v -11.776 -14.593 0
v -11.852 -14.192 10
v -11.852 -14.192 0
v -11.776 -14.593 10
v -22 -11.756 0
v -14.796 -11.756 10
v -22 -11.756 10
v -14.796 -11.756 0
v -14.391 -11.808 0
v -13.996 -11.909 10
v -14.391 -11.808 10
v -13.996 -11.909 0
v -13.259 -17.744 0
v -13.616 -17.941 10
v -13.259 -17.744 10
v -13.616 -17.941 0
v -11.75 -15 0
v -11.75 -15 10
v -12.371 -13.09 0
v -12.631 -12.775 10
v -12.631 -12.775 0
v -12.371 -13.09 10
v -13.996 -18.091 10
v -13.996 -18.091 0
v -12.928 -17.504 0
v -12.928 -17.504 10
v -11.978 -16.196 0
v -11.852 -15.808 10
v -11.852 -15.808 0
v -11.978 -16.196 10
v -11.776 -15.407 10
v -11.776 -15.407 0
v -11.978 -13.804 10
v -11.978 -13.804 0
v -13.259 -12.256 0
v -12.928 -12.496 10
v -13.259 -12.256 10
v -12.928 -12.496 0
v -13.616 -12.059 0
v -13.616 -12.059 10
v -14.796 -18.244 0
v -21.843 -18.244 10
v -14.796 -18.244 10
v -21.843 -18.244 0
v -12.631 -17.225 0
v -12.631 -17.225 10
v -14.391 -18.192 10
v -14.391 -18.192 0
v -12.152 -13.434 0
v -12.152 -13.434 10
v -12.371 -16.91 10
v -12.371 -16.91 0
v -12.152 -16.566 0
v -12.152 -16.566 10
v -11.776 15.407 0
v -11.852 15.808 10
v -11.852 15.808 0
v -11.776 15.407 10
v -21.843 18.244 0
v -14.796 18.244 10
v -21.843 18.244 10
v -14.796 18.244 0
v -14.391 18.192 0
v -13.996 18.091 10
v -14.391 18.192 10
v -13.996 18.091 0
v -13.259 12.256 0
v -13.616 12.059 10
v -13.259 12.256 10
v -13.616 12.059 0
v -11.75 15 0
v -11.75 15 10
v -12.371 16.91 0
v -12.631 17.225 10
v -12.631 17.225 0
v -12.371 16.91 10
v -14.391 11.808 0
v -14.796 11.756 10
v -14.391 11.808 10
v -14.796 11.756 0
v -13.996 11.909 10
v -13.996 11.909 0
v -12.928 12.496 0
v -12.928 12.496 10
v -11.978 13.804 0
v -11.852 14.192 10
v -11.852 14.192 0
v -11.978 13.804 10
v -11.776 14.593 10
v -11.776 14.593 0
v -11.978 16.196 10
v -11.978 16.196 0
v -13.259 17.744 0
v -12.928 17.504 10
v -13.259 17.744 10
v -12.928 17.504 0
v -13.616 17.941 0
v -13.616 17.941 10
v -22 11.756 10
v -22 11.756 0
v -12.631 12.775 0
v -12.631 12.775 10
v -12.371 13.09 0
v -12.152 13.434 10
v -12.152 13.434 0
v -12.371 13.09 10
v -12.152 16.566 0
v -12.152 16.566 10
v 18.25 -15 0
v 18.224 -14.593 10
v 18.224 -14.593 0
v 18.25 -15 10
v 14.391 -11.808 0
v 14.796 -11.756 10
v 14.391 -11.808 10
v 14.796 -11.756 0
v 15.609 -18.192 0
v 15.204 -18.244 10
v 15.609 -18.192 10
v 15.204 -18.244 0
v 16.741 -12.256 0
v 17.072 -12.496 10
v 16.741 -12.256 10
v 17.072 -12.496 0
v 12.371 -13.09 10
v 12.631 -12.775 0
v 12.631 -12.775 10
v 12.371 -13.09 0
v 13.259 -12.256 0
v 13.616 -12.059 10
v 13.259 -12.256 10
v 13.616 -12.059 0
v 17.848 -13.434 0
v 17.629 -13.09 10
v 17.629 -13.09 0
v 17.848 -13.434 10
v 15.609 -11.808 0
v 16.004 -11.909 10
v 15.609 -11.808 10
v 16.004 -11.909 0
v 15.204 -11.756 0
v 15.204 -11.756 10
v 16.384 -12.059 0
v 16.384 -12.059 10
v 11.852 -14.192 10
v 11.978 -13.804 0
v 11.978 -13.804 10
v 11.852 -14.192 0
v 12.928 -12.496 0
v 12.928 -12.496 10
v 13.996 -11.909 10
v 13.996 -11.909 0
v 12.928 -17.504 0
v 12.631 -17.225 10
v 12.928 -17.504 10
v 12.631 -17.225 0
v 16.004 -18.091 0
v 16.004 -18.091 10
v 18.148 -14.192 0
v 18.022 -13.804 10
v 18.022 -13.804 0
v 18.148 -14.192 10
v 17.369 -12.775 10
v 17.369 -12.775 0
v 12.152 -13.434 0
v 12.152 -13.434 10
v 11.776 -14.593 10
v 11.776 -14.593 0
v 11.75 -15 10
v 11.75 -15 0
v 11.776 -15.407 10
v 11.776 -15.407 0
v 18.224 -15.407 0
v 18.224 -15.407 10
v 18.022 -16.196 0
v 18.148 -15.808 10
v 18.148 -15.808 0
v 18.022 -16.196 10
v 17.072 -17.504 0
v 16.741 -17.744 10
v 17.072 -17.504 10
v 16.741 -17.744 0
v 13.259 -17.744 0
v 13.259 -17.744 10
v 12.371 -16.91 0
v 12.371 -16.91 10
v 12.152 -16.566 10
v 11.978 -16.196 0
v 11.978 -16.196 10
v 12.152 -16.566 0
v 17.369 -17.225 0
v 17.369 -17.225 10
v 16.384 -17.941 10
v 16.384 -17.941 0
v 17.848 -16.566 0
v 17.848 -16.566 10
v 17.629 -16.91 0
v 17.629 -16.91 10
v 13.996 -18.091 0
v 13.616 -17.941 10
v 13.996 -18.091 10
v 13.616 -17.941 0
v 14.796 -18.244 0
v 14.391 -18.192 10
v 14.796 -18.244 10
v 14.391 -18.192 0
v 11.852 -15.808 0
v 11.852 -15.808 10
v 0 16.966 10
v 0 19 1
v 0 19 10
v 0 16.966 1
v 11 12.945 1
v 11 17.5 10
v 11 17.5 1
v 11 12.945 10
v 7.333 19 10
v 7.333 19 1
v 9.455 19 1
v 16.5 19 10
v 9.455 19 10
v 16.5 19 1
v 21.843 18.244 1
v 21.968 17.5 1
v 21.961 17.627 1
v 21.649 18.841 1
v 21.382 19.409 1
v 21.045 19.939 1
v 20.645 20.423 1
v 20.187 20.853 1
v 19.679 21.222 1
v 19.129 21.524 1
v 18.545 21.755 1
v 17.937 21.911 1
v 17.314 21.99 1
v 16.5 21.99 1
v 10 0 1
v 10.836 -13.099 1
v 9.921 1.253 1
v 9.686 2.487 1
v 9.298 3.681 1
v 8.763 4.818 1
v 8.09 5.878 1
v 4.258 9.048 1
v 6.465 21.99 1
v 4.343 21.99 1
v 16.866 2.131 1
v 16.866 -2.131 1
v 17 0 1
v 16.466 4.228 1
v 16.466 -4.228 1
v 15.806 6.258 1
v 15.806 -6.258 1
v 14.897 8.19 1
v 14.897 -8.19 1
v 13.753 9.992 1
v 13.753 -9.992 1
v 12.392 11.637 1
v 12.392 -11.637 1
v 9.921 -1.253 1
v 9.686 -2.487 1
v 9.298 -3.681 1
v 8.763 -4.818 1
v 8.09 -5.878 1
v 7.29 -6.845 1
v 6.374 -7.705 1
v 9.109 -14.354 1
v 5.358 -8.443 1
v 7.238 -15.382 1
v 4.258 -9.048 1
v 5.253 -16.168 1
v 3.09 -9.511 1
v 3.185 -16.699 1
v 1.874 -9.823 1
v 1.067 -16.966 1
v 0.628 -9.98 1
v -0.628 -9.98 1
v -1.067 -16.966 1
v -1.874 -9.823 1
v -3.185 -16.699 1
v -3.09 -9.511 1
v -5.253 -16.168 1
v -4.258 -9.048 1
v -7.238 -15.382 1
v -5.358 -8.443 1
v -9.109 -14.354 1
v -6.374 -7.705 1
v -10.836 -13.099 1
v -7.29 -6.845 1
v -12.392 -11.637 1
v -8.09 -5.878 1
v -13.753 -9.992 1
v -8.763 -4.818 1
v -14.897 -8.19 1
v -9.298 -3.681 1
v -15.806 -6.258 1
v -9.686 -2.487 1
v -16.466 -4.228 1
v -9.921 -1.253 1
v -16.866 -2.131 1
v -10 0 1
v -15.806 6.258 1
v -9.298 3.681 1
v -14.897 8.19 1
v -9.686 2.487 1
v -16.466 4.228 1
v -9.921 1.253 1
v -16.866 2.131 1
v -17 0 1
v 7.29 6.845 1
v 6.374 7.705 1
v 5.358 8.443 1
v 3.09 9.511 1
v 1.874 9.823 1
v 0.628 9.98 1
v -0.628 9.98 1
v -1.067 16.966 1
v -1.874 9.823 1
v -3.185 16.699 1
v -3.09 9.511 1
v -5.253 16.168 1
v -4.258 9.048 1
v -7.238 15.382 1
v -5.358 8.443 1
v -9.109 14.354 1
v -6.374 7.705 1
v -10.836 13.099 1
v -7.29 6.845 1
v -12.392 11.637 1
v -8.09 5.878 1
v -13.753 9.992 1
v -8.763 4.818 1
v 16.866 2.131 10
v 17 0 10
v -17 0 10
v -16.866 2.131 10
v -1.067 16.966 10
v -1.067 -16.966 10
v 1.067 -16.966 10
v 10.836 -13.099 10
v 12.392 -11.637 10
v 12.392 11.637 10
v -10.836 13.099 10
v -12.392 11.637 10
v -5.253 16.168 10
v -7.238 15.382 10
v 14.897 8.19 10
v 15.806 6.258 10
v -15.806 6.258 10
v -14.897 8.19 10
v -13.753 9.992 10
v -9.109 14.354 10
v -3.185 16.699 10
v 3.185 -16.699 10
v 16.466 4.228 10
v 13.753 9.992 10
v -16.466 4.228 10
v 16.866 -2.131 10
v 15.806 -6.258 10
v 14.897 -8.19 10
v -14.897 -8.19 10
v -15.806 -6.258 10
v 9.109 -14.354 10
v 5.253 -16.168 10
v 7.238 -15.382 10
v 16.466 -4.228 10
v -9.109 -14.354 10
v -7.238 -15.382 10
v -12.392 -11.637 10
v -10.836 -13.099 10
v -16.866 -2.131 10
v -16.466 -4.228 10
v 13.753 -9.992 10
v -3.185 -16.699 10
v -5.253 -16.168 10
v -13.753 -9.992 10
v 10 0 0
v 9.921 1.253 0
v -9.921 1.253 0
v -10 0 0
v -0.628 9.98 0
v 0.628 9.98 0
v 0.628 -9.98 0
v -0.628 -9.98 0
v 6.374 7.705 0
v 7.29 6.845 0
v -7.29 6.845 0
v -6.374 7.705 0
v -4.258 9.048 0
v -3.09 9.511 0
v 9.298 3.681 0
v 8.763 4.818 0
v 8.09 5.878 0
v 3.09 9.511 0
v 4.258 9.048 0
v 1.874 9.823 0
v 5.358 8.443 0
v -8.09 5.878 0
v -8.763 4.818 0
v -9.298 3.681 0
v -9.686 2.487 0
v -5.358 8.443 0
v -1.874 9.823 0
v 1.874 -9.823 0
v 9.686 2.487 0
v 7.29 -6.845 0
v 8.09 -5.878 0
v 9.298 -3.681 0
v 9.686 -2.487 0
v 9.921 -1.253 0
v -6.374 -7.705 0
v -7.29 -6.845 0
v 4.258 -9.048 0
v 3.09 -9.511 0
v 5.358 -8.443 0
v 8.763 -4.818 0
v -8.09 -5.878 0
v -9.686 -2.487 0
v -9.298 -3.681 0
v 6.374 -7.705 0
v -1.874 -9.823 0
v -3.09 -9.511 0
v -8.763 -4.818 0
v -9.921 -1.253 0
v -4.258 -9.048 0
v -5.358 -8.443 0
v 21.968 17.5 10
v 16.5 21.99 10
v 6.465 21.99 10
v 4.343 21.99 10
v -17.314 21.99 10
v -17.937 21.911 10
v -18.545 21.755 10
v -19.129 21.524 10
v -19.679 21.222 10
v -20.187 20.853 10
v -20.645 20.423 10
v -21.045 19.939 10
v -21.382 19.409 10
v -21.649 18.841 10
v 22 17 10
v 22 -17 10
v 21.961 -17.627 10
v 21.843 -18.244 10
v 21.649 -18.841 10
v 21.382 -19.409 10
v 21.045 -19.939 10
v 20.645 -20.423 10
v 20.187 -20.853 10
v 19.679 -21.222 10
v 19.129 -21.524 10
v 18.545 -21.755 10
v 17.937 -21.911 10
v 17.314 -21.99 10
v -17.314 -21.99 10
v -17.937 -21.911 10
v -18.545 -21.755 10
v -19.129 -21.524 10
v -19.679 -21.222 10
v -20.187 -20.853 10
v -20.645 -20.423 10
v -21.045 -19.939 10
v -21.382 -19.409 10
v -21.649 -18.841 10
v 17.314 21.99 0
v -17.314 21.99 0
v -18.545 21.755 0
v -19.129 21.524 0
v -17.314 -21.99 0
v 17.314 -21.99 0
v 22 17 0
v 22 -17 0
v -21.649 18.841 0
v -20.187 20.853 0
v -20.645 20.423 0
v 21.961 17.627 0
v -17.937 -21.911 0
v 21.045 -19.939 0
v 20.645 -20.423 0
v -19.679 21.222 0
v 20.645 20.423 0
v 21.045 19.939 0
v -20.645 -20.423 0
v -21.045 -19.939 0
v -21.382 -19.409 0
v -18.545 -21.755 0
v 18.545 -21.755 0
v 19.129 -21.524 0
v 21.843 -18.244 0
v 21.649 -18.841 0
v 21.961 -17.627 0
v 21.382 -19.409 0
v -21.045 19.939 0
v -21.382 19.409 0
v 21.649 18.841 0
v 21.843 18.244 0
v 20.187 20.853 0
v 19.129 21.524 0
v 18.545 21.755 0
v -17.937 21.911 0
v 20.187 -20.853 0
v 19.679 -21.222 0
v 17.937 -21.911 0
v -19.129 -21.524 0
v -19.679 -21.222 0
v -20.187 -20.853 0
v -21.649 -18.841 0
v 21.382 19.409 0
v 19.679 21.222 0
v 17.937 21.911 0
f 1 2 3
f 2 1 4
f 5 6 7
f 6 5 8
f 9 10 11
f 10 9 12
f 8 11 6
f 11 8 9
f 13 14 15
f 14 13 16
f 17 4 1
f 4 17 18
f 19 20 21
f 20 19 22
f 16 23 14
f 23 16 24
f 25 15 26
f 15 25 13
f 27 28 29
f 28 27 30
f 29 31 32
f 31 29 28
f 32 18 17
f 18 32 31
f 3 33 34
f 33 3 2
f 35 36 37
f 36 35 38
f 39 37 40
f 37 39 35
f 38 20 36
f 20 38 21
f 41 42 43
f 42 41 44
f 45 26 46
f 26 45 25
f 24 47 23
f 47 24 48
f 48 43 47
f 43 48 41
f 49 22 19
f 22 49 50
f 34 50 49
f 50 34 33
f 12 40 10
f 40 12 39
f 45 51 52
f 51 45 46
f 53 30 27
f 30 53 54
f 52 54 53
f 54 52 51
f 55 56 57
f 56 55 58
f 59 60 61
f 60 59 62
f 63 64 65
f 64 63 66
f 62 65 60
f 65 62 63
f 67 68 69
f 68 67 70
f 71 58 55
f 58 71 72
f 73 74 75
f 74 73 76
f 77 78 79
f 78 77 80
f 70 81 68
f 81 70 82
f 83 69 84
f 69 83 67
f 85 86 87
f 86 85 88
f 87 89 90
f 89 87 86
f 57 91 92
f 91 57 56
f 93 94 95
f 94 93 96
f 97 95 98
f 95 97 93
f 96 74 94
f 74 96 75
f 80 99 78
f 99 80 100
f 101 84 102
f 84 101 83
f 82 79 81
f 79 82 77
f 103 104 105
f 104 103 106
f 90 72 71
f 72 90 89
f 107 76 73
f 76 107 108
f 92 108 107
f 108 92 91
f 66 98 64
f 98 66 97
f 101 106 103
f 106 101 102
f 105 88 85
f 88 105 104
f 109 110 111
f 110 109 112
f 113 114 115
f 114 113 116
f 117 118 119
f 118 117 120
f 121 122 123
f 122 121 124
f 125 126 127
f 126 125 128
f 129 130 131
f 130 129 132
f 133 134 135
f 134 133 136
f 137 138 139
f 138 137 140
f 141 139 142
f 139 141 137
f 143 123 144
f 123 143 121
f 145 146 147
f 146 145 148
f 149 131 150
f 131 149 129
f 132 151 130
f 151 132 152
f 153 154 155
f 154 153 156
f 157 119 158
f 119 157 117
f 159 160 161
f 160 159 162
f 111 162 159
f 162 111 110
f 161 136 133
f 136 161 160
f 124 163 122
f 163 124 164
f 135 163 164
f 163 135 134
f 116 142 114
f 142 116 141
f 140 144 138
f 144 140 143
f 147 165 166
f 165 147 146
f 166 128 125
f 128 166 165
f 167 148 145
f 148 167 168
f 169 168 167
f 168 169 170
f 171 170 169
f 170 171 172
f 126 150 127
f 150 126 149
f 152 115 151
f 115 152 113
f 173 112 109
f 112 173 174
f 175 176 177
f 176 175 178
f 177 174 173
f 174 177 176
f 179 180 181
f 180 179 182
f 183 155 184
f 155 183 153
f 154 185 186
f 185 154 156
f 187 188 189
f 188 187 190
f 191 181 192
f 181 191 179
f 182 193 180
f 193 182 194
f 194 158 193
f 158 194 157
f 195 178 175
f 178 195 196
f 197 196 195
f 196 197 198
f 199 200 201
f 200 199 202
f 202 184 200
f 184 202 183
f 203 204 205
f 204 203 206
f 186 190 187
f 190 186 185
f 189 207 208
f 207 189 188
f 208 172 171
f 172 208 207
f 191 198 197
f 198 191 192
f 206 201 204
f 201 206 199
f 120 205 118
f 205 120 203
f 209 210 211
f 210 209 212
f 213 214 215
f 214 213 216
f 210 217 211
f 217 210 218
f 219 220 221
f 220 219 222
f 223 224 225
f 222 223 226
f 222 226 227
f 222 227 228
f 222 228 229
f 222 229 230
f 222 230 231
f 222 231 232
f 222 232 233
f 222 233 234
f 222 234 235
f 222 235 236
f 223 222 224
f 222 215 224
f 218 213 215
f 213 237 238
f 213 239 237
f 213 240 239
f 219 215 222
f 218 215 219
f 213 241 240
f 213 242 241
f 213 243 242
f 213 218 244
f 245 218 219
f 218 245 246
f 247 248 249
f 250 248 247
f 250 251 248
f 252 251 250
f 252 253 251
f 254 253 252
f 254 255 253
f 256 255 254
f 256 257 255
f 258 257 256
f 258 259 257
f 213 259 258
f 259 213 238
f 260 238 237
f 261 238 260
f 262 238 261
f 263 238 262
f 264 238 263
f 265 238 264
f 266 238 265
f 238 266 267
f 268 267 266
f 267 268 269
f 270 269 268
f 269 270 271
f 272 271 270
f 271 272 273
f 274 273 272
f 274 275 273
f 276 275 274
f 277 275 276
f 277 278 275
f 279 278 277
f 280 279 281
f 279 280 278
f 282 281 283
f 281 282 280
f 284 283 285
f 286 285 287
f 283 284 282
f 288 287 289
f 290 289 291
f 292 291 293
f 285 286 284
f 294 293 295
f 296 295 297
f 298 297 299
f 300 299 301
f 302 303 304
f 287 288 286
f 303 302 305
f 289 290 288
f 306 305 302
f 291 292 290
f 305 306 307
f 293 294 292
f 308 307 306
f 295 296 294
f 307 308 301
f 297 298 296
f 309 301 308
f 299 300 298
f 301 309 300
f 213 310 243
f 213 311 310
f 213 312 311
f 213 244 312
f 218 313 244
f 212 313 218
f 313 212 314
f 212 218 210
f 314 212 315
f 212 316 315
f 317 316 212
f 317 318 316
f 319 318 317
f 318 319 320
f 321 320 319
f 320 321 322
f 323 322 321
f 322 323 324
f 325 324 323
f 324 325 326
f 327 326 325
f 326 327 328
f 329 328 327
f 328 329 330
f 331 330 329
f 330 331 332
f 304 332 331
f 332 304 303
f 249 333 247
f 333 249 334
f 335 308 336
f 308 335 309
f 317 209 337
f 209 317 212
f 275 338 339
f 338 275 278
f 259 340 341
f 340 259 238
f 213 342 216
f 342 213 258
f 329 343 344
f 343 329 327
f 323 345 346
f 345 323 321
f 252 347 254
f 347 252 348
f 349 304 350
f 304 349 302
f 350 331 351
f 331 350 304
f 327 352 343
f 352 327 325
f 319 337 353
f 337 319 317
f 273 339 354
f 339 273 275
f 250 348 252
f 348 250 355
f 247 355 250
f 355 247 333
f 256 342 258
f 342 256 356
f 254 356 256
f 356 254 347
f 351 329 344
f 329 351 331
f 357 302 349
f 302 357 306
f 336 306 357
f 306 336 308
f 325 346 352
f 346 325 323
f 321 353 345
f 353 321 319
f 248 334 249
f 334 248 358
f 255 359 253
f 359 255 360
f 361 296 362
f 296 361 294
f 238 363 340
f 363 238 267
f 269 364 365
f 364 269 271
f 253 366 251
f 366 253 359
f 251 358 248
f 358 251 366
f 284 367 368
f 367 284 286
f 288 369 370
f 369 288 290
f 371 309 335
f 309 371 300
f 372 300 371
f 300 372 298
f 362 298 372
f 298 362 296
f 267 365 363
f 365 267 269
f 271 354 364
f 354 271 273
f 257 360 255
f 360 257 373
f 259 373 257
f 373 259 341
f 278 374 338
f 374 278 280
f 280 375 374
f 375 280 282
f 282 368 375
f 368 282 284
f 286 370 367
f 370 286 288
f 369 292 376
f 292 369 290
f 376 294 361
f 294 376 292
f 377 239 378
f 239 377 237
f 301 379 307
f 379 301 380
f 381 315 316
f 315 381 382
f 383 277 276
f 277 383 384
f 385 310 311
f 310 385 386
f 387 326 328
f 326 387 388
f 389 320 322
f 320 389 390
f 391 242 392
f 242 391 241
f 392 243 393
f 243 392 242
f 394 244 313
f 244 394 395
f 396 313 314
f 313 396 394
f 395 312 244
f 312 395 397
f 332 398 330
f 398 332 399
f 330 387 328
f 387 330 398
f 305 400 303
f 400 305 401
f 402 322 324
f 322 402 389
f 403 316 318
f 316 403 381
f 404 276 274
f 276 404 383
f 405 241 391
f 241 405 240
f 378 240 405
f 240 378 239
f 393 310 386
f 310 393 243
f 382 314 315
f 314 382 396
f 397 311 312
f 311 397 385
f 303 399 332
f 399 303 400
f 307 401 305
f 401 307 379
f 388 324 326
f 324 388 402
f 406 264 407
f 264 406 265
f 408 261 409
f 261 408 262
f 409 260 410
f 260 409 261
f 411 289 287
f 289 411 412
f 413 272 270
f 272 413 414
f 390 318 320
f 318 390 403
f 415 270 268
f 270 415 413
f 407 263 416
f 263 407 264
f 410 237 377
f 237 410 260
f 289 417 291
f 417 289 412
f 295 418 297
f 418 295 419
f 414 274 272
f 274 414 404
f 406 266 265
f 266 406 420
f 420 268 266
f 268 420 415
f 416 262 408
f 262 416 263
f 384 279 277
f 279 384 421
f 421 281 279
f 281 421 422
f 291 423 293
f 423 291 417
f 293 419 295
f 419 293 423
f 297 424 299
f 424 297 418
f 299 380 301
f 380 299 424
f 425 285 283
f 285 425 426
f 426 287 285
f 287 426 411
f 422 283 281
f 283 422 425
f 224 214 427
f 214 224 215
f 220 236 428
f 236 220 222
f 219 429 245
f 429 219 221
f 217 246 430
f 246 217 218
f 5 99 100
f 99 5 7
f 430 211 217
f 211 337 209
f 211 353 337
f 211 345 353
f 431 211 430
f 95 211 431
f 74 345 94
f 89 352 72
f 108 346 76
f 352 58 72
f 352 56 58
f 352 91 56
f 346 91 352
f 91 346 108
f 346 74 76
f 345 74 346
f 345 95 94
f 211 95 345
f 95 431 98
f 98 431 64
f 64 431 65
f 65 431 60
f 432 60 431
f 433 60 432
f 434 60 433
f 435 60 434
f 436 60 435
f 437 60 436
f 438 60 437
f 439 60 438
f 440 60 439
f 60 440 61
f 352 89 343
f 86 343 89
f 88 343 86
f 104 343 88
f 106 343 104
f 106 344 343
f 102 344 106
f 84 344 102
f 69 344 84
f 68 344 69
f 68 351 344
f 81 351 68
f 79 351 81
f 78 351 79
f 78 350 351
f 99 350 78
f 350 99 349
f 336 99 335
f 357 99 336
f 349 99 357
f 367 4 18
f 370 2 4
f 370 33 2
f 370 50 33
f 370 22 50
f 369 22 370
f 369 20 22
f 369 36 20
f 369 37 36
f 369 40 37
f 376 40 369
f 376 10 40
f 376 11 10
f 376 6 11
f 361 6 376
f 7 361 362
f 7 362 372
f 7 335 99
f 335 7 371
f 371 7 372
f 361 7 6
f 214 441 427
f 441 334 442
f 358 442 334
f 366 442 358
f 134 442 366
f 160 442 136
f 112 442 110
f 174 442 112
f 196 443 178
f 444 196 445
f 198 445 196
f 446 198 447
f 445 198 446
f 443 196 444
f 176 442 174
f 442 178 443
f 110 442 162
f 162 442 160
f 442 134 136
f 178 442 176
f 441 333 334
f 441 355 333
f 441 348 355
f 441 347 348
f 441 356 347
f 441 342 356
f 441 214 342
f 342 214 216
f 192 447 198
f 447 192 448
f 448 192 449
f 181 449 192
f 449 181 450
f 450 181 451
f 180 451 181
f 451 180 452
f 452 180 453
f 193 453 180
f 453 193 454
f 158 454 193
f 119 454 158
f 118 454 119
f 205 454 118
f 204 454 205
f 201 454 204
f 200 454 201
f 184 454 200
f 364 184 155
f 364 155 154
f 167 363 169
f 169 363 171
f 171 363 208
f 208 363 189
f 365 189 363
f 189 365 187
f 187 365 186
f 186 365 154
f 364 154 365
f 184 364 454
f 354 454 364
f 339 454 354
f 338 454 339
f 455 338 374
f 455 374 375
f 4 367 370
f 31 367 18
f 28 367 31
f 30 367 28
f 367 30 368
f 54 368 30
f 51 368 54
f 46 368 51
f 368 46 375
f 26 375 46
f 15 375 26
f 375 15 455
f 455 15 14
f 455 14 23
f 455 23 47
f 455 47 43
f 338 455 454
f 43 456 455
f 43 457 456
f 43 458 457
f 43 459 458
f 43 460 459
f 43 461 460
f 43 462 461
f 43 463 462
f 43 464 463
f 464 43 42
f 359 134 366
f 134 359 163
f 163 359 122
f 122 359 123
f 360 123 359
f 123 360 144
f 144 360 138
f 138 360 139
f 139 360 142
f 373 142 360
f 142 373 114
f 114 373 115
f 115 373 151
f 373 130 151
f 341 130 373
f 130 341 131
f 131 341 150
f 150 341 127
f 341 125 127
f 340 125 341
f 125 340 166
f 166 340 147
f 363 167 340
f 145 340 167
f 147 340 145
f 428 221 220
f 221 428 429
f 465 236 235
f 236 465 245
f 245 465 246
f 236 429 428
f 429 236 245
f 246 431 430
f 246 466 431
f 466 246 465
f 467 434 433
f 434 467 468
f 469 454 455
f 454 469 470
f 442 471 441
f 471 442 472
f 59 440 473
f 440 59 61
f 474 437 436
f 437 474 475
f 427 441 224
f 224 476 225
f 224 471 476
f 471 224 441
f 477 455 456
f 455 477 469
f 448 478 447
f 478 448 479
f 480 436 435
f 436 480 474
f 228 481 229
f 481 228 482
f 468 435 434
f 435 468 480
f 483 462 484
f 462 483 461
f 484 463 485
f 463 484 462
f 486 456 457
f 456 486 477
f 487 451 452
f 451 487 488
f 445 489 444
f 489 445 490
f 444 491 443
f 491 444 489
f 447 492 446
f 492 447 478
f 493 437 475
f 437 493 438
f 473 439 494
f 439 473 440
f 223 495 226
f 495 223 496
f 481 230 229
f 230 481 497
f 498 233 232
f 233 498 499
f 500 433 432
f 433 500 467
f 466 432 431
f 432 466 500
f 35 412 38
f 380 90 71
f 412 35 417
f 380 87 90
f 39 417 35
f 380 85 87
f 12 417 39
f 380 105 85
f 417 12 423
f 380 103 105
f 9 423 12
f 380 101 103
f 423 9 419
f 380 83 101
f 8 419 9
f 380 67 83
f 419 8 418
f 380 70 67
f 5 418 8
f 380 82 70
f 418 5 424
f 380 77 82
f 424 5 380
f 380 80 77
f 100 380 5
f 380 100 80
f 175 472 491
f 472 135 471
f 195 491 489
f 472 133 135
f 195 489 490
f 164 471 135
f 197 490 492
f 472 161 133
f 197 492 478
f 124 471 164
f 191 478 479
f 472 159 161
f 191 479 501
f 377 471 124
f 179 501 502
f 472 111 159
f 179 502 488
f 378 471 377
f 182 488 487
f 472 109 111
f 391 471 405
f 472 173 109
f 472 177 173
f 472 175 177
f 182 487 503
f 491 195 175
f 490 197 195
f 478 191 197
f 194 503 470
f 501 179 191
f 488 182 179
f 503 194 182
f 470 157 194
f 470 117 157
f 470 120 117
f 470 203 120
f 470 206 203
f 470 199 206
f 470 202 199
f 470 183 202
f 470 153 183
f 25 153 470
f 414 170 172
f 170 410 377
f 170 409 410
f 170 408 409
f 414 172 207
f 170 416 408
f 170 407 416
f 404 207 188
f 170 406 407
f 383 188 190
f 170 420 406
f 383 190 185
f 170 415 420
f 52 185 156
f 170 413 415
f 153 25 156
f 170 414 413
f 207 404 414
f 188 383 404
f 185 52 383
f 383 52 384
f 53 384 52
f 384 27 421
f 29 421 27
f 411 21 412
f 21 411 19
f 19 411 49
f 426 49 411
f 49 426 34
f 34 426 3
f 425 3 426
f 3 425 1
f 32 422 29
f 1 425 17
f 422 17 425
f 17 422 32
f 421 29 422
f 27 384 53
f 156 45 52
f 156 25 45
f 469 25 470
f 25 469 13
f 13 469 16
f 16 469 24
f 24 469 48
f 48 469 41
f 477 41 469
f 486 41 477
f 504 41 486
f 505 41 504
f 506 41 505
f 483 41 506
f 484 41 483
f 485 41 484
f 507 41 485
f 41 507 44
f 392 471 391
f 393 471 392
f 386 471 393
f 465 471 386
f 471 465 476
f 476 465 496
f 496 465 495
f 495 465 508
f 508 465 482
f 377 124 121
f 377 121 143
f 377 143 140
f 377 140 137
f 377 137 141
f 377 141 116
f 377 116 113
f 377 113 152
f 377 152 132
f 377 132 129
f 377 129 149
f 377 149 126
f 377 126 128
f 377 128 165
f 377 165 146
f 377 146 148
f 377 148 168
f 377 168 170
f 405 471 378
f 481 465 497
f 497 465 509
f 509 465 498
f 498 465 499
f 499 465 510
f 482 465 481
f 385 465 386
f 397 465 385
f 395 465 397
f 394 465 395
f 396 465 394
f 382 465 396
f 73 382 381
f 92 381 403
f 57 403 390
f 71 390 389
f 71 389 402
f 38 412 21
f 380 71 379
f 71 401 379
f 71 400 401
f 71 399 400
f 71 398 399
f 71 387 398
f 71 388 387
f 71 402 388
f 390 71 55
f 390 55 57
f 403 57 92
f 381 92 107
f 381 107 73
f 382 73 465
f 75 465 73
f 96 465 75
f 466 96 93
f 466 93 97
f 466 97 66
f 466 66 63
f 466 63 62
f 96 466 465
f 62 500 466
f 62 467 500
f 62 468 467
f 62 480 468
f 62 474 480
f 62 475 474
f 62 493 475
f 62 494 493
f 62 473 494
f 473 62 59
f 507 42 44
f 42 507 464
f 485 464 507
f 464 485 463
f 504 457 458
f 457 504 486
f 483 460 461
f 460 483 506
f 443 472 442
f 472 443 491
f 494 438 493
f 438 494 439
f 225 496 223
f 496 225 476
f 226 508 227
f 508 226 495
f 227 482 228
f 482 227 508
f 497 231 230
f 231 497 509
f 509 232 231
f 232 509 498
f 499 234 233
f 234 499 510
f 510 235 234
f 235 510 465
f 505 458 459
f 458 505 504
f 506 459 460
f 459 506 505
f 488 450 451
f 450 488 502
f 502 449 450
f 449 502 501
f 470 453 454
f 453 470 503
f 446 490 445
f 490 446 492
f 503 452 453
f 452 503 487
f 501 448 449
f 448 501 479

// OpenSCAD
$fn = 50;


difference() {
	union() {
		translate(v = [0, 0, 0]) {
			rotate(a = [0, 0, 0]) {
				hull() {
					translate(v = [-17.0000000000, 17.0000000000, 0]) {
						rotate(a = [0, 0, 0]) {
							translate(v = [0, 0, 0]) {
								rotate(a = [0, 0, 0]) {
									cylinder(h = 10, r = 5);
								}
							}
						}
					}
					translate(v = [17.0000000000, 17.0000000000, 0]) {
						rotate(a = [0, 0, 0]) {
							translate(v = [0, 0, 0]) {
								rotate(a = [0, 0, 0]) {
									cylinder(h = 10, r = 5);
								}
							}
						}
					}
					translate(v = [-17.0000000000, -17.0000000000, 0]) {
						rotate(a = [0, 0, 0]) {
							translate(v = [0, 0, 0]) {
								rotate(a = [0, 0, 0]) {
									cylinder(h = 10, r = 5);
								}
							}
						}
					}
					translate(v = [17.0000000000, -17.0000000000, 0]) {
						rotate(a = [0, 0, 0]) {
							translate(v = [0, 0, 0]) {
								rotate(a = [0, 0, 0]) {
									cylinder(h = 10, r = 5);
								}
							}
						}
					}
				}
			}
		}
	}
	union() {
		translate(v = [-22.5000000000, -15.0000000000, -125]) {
			rotate(a = [0, 0, 0]) {
				hull() {
					translate(v = [7.5000000000, 0, 0]) {
						rotate(a = [0, 0, 0]) {
							translate(v = [0, 0, 0]) {
								rotate(a = [0, 0, 0]) {
									cylinder(h = 250, r = 3.2500000000);
								}
							}
						}
					}
					translate(v = [-7.5000000000, 0, 0]) {
						rotate(a = [0, 0, 0]) {
							translate(v = [0, 0, 0]) {
								rotate(a = [0, 0, 0]) {
									cylinder(h = 250, r = 3.2500000000);
								}
							}
						}
					}
				}
			}
		}
		translate(v = [-22.5000000000, 15.0000000000, -125]) {
			rotate(a = [0, 0, 0]) {
				hull() {
					translate(v = [7.5000000000, 0, 0]) {
						rotate(a = [0, 0, 0]) {
							translate(v = [0, 0, 0]) {
								rotate(a = [0, 0, 0]) {
									cylinder(h = 250, r = 3.2500000000);
								}
							}
						}
					}
					translate(v = [-7.5000000000, 0, 0]) {
						rotate(a = [0, 0, 0]) {
							translate(v = [0, 0, 0]) {
								rotate(a = [0, 0, 0]) {
									cylinder(h = 250, r = 3.2500000000);
								}
							}
						}
					}
				}
			}
		}
		translate(v = [15.0000000000, -15.0000000000, -125.0000000000]) {
			rotate(a = [0, 0, 0]) {
				cylinder(h = 250, r = 3.2500000000);
			}
		}
		translate(v = [0.0000000000, 11.0000000000, 1.0000000000]) {
			rotate(a = [0, 0, 0]) {
				cube(size = [11, 8, 12]);
			}
		}
		translate(v = [0, 0, 1.0000000000]) {
			rotate(a = [0, 0, 0]) {
				cylinder(h = 12, r = 17.0000000000);
			}
		}
		translate(v = [0, 0, -5.0000000000]) {
			rotate(a = [0, 0, 0]) {
				cylinder(h = 10, r = 10.0000000000);
			}
		}
		translate(v = [0.0000000000, 17.5000000000, 1]) {
			rotate(a = [0, 0, 0]) {
				cube(size = [22.0000000000, 1.5000000000, 12]);
			}
		}
		translate(v = [16.5000000000, 17.5000000000, 1]) {
			rotate(a = [0, 0, 0]) {
				cube(size = [5.5000000000, 4.5000000000, 12]);
			}
		}
		translate(v = [3.5833333333, 22.7500000000, 1]) {
			rotate(a = [0, 0, -45]) {
				cube(size = [7.5000000000, 1.5000000000, 12]);
			}
		}
	}
}
